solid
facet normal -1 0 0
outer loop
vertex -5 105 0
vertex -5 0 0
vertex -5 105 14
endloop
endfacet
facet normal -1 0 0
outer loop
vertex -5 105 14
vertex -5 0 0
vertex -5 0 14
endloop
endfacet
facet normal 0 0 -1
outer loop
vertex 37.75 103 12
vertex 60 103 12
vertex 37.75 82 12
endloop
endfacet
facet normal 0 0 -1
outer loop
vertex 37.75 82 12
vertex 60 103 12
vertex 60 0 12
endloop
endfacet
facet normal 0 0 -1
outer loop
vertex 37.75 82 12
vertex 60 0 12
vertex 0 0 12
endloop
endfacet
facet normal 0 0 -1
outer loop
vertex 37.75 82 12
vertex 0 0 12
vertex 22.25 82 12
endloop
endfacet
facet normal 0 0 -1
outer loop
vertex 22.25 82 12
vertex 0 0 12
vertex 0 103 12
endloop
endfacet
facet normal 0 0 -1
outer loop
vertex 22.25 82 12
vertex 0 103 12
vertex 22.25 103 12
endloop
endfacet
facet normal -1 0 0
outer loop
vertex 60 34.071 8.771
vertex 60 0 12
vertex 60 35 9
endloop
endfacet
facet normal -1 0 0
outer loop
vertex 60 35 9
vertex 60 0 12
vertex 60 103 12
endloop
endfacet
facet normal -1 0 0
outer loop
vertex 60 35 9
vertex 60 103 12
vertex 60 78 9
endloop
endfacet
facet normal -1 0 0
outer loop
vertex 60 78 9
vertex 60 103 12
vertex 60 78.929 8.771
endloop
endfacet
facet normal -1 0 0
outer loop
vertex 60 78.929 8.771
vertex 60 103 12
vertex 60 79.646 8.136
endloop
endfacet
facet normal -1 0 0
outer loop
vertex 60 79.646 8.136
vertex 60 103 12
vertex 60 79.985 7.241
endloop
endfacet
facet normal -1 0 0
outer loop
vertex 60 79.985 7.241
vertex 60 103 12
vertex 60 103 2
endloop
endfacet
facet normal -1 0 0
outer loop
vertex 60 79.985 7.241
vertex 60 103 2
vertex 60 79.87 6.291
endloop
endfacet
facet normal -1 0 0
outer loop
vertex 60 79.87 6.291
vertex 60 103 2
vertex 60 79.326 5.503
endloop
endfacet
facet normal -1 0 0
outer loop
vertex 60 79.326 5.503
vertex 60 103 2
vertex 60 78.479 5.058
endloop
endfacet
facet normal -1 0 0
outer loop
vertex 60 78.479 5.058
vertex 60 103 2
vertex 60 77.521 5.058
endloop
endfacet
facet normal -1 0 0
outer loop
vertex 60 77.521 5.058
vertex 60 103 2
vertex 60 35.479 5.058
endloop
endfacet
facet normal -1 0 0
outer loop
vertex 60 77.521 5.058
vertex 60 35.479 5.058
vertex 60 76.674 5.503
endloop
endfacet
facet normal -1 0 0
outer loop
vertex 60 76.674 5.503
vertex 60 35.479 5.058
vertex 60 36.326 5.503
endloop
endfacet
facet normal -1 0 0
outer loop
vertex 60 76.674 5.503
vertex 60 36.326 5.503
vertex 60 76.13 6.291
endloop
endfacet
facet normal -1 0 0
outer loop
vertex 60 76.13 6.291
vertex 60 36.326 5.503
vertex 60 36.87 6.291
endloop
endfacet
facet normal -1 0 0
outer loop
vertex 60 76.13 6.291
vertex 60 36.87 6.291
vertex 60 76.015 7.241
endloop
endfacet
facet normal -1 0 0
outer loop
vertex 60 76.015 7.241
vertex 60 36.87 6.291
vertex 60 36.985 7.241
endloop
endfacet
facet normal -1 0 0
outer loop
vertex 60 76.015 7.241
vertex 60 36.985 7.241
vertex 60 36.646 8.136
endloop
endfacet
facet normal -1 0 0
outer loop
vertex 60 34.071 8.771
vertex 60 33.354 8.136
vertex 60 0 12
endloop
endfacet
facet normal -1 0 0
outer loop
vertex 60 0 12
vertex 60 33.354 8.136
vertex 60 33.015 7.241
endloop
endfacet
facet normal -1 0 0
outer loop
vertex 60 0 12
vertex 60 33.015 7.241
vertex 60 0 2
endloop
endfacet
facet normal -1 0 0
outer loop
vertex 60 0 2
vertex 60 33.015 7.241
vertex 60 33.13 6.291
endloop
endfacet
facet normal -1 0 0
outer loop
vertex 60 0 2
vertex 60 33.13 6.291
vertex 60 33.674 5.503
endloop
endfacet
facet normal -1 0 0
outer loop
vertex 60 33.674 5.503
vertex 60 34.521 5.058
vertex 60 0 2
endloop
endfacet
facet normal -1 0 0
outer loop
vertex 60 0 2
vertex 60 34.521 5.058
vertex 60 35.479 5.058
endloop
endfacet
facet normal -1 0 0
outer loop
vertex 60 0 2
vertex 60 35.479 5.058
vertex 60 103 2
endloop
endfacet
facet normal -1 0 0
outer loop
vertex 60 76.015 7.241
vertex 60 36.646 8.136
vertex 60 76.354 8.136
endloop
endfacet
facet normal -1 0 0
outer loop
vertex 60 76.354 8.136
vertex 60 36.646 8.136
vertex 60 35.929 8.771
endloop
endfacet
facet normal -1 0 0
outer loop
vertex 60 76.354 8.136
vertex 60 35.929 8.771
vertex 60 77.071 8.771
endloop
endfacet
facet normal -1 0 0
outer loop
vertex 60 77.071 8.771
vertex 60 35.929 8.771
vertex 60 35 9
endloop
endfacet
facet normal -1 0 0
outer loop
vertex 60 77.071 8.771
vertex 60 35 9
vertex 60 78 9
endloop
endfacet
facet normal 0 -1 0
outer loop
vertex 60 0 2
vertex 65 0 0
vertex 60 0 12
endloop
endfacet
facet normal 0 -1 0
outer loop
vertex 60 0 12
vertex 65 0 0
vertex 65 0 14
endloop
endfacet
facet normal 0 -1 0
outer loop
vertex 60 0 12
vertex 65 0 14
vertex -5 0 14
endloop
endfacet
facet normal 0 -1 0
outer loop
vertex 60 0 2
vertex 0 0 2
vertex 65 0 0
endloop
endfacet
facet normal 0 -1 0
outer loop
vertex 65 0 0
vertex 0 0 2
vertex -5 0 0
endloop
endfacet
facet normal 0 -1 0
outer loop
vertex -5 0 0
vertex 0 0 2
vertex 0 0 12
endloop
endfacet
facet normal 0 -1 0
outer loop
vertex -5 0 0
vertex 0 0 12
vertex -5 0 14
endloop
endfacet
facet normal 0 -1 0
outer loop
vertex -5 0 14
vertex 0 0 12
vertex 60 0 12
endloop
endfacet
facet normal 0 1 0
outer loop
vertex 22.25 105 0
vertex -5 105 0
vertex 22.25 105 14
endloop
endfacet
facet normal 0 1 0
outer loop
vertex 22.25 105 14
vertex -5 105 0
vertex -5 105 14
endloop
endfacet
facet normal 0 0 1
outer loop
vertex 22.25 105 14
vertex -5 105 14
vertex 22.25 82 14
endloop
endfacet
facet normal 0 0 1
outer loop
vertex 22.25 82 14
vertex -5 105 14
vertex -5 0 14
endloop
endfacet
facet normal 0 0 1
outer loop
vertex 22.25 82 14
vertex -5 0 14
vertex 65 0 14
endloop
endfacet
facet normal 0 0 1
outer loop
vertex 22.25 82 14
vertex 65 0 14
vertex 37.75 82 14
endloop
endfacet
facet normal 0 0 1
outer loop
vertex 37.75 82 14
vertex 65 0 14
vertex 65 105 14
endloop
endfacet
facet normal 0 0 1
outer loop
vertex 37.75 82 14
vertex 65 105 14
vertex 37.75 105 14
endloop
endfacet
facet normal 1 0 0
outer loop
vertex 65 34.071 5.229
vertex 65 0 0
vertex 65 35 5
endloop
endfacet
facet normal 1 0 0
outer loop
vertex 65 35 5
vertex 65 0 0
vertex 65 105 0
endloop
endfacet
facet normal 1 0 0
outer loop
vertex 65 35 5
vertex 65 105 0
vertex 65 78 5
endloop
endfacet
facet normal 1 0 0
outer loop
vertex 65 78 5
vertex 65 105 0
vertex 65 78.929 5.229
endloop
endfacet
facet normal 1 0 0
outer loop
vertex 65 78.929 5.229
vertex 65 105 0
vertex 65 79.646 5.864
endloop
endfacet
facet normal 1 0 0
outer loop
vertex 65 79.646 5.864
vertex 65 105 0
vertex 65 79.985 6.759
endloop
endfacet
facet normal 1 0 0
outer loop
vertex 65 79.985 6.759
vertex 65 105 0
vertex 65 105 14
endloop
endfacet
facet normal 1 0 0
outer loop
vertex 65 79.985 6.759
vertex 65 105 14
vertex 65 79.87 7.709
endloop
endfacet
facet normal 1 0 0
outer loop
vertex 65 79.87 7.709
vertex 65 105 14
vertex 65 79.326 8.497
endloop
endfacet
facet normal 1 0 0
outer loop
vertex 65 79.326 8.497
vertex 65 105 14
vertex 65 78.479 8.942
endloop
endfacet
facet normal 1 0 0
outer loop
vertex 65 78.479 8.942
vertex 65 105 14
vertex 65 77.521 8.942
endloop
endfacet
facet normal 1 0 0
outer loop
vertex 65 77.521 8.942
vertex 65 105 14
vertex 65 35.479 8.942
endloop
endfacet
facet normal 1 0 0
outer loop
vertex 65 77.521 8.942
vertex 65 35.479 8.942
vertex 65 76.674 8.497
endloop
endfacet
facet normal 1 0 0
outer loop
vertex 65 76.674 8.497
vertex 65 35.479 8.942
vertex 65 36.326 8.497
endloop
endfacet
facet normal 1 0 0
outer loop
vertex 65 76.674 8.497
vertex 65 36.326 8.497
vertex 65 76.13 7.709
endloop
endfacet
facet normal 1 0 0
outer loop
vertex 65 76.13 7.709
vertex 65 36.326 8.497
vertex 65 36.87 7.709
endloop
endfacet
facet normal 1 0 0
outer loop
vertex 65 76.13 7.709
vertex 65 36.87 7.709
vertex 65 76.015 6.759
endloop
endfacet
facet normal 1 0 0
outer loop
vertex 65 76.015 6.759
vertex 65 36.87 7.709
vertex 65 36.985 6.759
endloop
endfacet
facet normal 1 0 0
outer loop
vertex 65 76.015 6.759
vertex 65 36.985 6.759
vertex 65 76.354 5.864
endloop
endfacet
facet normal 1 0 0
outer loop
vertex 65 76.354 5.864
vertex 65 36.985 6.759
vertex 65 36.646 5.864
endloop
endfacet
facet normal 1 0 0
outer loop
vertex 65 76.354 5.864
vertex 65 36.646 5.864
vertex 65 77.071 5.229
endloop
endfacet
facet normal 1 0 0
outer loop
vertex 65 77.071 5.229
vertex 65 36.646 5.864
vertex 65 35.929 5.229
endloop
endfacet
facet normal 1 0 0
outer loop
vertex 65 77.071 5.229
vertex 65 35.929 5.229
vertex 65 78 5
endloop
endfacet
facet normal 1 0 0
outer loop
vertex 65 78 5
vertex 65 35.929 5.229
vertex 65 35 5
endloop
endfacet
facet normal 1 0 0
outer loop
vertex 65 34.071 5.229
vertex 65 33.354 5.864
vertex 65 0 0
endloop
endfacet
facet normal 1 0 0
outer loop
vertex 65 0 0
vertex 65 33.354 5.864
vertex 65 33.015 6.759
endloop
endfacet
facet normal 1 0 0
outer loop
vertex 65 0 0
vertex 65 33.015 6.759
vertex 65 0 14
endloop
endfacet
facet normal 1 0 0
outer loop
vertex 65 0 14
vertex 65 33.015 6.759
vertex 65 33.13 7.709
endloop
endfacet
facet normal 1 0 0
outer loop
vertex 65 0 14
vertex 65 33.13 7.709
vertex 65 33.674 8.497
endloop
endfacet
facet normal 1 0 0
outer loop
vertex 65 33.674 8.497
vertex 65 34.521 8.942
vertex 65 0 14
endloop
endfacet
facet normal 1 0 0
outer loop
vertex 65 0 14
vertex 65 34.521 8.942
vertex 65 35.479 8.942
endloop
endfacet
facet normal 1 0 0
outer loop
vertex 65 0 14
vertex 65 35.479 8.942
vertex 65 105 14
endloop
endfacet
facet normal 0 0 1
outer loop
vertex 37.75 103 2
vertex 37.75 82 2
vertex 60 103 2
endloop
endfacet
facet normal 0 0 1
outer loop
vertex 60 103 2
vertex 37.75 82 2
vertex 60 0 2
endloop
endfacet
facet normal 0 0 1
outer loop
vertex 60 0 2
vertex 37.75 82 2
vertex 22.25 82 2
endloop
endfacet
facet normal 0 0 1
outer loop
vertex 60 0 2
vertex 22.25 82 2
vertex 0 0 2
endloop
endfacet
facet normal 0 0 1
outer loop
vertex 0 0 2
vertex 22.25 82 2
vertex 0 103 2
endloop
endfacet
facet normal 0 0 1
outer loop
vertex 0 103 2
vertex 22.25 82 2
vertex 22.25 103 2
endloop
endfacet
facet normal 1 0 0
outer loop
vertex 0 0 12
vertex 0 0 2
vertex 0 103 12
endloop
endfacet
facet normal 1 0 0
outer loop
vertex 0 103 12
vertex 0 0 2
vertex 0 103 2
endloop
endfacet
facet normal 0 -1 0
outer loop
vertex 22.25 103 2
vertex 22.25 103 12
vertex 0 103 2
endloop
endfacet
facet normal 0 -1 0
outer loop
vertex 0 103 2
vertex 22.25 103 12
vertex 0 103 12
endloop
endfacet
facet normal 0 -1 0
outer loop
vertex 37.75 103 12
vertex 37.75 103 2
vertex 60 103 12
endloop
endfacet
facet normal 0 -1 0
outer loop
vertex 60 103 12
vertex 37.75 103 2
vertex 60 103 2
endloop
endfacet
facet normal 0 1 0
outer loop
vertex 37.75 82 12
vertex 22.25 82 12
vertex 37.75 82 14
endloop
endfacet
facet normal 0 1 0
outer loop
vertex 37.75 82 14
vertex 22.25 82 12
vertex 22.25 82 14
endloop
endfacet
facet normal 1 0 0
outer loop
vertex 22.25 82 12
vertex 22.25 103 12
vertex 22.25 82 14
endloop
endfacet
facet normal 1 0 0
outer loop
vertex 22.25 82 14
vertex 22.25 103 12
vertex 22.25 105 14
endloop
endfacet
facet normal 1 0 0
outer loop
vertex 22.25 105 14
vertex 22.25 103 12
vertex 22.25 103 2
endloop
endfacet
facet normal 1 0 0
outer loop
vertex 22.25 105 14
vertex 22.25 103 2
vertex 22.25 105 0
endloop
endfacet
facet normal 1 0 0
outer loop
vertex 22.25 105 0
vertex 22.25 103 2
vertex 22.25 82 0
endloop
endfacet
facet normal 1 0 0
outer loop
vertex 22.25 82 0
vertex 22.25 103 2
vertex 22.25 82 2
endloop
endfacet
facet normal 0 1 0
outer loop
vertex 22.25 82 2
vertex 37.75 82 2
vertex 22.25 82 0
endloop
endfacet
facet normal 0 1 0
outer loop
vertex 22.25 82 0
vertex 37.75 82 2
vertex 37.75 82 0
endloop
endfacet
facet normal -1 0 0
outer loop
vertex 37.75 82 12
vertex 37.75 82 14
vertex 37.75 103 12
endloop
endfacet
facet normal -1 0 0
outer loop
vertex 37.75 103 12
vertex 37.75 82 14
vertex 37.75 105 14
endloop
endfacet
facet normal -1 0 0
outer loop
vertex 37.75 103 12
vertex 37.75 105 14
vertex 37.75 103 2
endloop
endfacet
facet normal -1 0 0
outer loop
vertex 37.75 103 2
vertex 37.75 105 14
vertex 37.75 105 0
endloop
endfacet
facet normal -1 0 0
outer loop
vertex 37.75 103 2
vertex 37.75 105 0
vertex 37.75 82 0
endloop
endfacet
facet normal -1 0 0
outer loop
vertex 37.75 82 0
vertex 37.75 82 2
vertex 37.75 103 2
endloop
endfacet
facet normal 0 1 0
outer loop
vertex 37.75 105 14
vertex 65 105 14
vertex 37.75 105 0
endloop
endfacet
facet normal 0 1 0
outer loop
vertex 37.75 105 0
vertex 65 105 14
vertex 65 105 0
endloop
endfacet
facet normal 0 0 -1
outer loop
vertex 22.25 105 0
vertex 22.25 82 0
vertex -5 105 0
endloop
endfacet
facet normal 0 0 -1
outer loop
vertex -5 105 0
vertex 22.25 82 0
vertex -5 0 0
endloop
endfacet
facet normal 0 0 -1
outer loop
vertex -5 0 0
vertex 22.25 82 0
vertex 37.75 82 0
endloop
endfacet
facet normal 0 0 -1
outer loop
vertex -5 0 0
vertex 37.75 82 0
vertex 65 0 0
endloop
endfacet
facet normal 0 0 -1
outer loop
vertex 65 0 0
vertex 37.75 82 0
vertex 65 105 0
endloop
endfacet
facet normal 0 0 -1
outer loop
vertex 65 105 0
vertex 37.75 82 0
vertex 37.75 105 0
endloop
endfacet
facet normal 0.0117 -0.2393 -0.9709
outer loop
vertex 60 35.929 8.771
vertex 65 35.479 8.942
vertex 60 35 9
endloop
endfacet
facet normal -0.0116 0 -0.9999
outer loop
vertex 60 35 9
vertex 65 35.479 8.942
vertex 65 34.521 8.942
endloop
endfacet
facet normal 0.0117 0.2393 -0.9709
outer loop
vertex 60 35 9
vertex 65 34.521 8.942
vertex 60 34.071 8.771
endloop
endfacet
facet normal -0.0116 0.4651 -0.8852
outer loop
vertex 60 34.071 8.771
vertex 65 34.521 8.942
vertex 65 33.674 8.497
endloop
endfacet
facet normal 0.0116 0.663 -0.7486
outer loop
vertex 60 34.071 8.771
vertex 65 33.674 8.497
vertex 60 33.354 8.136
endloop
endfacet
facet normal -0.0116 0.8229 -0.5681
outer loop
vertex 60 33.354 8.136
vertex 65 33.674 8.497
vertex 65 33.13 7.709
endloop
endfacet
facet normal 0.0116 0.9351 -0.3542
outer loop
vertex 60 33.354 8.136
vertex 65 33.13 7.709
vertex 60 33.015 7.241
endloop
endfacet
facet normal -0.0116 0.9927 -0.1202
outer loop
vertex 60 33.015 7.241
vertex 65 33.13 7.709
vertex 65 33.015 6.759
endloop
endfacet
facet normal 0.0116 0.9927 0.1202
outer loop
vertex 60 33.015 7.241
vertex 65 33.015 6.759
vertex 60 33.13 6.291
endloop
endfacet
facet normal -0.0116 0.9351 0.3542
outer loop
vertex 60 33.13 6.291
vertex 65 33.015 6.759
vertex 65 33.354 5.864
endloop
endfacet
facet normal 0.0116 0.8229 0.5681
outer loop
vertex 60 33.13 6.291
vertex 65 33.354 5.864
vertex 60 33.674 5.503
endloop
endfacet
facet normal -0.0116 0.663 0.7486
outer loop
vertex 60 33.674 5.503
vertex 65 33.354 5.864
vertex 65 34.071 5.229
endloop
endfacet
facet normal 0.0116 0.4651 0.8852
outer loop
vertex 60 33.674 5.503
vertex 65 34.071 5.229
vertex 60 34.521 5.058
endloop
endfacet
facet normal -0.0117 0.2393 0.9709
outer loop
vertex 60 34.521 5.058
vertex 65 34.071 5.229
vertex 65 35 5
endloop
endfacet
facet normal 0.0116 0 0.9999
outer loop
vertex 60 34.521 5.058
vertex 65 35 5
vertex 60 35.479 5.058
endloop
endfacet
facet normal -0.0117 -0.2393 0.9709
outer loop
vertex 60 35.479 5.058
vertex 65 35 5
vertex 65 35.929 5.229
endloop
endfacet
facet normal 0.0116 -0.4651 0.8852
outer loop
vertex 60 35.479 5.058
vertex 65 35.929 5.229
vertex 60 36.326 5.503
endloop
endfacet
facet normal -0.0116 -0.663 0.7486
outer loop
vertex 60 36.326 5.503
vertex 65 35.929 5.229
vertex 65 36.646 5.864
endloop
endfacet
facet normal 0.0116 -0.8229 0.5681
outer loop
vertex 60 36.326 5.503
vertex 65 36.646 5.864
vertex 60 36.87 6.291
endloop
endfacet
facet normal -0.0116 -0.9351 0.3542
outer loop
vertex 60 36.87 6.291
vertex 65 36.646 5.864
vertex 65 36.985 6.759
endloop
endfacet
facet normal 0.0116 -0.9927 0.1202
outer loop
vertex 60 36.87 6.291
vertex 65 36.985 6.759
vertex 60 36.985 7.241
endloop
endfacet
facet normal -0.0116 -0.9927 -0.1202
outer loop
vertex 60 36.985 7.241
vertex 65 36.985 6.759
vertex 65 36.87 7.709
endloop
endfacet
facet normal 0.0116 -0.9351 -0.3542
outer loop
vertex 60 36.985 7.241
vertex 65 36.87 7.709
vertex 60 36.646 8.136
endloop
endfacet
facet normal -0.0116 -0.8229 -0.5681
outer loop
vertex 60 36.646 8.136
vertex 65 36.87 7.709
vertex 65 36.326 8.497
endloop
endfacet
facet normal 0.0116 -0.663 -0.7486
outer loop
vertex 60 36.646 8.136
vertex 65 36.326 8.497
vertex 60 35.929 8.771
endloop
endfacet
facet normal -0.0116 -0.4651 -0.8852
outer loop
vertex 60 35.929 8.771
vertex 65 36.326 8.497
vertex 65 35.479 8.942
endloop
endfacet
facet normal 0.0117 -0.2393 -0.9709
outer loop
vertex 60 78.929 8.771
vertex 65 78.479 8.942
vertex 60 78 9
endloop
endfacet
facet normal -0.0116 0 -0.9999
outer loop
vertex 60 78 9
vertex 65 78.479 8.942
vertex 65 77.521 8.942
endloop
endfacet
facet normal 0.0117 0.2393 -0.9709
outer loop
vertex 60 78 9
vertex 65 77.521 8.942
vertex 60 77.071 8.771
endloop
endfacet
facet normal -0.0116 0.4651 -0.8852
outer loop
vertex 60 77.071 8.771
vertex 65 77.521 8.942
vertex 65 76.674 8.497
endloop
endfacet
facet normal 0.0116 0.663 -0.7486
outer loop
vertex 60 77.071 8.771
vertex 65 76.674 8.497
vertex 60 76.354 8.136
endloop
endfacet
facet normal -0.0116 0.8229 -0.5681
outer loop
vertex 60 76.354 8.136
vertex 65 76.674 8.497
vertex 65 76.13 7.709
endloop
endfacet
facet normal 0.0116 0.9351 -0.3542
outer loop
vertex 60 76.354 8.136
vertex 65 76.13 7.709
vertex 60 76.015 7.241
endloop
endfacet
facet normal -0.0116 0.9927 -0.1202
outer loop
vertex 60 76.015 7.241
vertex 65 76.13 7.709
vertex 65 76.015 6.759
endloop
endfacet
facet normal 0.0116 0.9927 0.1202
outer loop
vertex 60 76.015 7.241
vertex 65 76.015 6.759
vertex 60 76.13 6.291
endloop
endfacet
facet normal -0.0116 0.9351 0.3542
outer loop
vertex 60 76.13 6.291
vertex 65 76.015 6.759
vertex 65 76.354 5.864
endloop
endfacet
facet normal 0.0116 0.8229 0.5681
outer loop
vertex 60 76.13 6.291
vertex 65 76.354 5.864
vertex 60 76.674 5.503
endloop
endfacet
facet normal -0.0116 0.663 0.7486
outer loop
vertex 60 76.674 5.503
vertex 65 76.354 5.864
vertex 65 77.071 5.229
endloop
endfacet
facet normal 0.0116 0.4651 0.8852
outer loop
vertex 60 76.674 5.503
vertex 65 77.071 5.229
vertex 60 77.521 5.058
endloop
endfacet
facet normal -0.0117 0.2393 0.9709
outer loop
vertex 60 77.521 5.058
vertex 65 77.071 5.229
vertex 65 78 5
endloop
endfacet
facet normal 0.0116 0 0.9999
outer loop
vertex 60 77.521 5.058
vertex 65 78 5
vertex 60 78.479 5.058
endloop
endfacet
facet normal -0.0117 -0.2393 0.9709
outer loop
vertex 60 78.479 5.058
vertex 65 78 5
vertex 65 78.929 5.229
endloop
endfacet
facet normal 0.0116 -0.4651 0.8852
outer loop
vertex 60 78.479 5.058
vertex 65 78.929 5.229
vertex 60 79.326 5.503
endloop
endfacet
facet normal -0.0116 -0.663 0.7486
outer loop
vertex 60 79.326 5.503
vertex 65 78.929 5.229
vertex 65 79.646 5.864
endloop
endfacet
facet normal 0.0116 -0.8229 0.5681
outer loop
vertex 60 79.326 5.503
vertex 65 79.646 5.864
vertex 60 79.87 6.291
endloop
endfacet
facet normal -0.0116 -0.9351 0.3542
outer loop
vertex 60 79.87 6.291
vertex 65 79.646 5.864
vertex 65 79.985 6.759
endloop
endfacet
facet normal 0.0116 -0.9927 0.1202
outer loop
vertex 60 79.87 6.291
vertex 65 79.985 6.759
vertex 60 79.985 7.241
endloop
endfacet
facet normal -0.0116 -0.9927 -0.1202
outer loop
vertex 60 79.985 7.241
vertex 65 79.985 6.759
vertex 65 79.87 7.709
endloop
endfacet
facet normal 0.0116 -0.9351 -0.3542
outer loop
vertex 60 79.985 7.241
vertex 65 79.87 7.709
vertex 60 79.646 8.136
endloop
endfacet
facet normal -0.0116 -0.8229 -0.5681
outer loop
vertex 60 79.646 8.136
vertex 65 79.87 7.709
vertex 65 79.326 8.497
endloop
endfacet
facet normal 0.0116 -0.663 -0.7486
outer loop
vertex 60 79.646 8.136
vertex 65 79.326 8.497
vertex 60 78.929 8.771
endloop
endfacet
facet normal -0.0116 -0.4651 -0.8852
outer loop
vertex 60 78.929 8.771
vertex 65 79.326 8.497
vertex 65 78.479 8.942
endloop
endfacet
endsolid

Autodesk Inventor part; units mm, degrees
ref_plane "YZ Plane" through (0, 0, 0) normal (1, 0, 0) x (0, 1, 0)
ref_plane "XZ Plane" through (0, 0, 0) normal (0, 1, 0) x (-1, 0, 0)
ref_plane "XY Plane" through (0, 0, 0) normal (0, 0, 1) x (1, 0, 0)
sketch "Sketch1" plane through (0, 0, 0) normal (0, 0, 1) x (1, 0, 0)
  line L0 (0, 0) -> (60, 0)
  line L1 (60, 0) -> (60, 100)
  line L2 (60, 100) -> (0, 100)
  line L3 (0, 100) -> (0, 0)
  line L4 (-5, 0) -> (65, 0)
  line L5 (65, 0) -> (65, 105)
  line L6 (65, 105) -> (-5, 105)
  line L7 (-5, 105) -> (-5, 0)
  dimension "d0" = 60
  dimension "d1" = 100
  dimension "d2" = 5
  dimension "d3" = 5
  dimension "d4" = 5
extrude "Extrusion1" add sketch "Sketch1" along normal blind 14
sketch "Sketch2" plane through (-5, 0, 0) normal (0, -1, 0) x (1, 0, 0)
  line L0 (5, 2) -> (65, 2)
  line L1 (65, 2) -> (65, 12)
  line L2 (65, 12) -> (5, 12)
  line L3 (5, 12) -> (5, 2)
  line L4 (0, 14) -> (70, 14) projected
  line L5 (0, 0) -> (70, 0) projected
  line L6 (70, 0) -> (70, 14) projected
  line L7 (0, 0) -> (0, 14) projected
  point P0 (5, 0)
  dimension "d7" = 2
  dimension "d8" = 2
  dimension "d9" = 5
  dimension "d10" = 5
extrude "Extrusion2" cut sketch "Sketch2" against normal blind 103 contours L3 L2 L1 L0
sketch "Sketch3" plane through (0, 0, 14) normal (0, 0, 1) x (1, 0, 0)
  line L0 (37.75, 103) -> (22.25, 103)
  line L1 (22.25, 103) -> (22.25, 82)
  line L2 (22.25, 82) -> (37.75, 82)
  line L3 (37.75, 82) -> (37.75, 103)
  line L4 (65, 105) -> (-5, 105) projected
  line L5 (0, 0) -> (0, 103) projected
  line L6 (0, 103) -> (60, 103) projected
  line L7 (0, 103) -> (60, 103)
  line L8 (60, 0) -> (60, 103) projected
  line L9 (22.25, 103) -> (22.25, 105)
  line L10 (65, 105) -> (-5, 105) projected
  line L11 (37.75, 103) -> (37.75, 105)
  line L12 (22.25, 105) -> (37.75, 105)
  dimension "d13" = 2
  dimension "d14" = 22.25
  dimension "d15" = 15.5
  dimension "d16" = 21
  dimension "d17" = 60
  dimension "d18" = 22.25
extrude "Extrusion3" cut sketch "Sketch3" against normal up to surface (14 mm away)
sketch "Sketch4" plane through (65, 0, 0) normal (1, 0, 0) x (0, 0, -1)
  circle A0 centre (-7, 78) radius 2
  circle A1 centre (-7, 35) radius 2
  line L0 (-12, 103) -> (-2, 103) projected
  line L1 (-12, 0) -> (-12, 103) projected
  line L2 (0, 0) -> (-14, 0) projected
  dimension "d21" = 4
  dimension "d22" = 4
  dimension "d23" = 25
  dimension "d24" = 5
  dimension "d25" = 35
  dimension "d26" = 5
extrude "Extrusion4" cut sketch "Sketch4" against normal up to surface (42.75 mm away)
properties part number "Heatsink Jig"
